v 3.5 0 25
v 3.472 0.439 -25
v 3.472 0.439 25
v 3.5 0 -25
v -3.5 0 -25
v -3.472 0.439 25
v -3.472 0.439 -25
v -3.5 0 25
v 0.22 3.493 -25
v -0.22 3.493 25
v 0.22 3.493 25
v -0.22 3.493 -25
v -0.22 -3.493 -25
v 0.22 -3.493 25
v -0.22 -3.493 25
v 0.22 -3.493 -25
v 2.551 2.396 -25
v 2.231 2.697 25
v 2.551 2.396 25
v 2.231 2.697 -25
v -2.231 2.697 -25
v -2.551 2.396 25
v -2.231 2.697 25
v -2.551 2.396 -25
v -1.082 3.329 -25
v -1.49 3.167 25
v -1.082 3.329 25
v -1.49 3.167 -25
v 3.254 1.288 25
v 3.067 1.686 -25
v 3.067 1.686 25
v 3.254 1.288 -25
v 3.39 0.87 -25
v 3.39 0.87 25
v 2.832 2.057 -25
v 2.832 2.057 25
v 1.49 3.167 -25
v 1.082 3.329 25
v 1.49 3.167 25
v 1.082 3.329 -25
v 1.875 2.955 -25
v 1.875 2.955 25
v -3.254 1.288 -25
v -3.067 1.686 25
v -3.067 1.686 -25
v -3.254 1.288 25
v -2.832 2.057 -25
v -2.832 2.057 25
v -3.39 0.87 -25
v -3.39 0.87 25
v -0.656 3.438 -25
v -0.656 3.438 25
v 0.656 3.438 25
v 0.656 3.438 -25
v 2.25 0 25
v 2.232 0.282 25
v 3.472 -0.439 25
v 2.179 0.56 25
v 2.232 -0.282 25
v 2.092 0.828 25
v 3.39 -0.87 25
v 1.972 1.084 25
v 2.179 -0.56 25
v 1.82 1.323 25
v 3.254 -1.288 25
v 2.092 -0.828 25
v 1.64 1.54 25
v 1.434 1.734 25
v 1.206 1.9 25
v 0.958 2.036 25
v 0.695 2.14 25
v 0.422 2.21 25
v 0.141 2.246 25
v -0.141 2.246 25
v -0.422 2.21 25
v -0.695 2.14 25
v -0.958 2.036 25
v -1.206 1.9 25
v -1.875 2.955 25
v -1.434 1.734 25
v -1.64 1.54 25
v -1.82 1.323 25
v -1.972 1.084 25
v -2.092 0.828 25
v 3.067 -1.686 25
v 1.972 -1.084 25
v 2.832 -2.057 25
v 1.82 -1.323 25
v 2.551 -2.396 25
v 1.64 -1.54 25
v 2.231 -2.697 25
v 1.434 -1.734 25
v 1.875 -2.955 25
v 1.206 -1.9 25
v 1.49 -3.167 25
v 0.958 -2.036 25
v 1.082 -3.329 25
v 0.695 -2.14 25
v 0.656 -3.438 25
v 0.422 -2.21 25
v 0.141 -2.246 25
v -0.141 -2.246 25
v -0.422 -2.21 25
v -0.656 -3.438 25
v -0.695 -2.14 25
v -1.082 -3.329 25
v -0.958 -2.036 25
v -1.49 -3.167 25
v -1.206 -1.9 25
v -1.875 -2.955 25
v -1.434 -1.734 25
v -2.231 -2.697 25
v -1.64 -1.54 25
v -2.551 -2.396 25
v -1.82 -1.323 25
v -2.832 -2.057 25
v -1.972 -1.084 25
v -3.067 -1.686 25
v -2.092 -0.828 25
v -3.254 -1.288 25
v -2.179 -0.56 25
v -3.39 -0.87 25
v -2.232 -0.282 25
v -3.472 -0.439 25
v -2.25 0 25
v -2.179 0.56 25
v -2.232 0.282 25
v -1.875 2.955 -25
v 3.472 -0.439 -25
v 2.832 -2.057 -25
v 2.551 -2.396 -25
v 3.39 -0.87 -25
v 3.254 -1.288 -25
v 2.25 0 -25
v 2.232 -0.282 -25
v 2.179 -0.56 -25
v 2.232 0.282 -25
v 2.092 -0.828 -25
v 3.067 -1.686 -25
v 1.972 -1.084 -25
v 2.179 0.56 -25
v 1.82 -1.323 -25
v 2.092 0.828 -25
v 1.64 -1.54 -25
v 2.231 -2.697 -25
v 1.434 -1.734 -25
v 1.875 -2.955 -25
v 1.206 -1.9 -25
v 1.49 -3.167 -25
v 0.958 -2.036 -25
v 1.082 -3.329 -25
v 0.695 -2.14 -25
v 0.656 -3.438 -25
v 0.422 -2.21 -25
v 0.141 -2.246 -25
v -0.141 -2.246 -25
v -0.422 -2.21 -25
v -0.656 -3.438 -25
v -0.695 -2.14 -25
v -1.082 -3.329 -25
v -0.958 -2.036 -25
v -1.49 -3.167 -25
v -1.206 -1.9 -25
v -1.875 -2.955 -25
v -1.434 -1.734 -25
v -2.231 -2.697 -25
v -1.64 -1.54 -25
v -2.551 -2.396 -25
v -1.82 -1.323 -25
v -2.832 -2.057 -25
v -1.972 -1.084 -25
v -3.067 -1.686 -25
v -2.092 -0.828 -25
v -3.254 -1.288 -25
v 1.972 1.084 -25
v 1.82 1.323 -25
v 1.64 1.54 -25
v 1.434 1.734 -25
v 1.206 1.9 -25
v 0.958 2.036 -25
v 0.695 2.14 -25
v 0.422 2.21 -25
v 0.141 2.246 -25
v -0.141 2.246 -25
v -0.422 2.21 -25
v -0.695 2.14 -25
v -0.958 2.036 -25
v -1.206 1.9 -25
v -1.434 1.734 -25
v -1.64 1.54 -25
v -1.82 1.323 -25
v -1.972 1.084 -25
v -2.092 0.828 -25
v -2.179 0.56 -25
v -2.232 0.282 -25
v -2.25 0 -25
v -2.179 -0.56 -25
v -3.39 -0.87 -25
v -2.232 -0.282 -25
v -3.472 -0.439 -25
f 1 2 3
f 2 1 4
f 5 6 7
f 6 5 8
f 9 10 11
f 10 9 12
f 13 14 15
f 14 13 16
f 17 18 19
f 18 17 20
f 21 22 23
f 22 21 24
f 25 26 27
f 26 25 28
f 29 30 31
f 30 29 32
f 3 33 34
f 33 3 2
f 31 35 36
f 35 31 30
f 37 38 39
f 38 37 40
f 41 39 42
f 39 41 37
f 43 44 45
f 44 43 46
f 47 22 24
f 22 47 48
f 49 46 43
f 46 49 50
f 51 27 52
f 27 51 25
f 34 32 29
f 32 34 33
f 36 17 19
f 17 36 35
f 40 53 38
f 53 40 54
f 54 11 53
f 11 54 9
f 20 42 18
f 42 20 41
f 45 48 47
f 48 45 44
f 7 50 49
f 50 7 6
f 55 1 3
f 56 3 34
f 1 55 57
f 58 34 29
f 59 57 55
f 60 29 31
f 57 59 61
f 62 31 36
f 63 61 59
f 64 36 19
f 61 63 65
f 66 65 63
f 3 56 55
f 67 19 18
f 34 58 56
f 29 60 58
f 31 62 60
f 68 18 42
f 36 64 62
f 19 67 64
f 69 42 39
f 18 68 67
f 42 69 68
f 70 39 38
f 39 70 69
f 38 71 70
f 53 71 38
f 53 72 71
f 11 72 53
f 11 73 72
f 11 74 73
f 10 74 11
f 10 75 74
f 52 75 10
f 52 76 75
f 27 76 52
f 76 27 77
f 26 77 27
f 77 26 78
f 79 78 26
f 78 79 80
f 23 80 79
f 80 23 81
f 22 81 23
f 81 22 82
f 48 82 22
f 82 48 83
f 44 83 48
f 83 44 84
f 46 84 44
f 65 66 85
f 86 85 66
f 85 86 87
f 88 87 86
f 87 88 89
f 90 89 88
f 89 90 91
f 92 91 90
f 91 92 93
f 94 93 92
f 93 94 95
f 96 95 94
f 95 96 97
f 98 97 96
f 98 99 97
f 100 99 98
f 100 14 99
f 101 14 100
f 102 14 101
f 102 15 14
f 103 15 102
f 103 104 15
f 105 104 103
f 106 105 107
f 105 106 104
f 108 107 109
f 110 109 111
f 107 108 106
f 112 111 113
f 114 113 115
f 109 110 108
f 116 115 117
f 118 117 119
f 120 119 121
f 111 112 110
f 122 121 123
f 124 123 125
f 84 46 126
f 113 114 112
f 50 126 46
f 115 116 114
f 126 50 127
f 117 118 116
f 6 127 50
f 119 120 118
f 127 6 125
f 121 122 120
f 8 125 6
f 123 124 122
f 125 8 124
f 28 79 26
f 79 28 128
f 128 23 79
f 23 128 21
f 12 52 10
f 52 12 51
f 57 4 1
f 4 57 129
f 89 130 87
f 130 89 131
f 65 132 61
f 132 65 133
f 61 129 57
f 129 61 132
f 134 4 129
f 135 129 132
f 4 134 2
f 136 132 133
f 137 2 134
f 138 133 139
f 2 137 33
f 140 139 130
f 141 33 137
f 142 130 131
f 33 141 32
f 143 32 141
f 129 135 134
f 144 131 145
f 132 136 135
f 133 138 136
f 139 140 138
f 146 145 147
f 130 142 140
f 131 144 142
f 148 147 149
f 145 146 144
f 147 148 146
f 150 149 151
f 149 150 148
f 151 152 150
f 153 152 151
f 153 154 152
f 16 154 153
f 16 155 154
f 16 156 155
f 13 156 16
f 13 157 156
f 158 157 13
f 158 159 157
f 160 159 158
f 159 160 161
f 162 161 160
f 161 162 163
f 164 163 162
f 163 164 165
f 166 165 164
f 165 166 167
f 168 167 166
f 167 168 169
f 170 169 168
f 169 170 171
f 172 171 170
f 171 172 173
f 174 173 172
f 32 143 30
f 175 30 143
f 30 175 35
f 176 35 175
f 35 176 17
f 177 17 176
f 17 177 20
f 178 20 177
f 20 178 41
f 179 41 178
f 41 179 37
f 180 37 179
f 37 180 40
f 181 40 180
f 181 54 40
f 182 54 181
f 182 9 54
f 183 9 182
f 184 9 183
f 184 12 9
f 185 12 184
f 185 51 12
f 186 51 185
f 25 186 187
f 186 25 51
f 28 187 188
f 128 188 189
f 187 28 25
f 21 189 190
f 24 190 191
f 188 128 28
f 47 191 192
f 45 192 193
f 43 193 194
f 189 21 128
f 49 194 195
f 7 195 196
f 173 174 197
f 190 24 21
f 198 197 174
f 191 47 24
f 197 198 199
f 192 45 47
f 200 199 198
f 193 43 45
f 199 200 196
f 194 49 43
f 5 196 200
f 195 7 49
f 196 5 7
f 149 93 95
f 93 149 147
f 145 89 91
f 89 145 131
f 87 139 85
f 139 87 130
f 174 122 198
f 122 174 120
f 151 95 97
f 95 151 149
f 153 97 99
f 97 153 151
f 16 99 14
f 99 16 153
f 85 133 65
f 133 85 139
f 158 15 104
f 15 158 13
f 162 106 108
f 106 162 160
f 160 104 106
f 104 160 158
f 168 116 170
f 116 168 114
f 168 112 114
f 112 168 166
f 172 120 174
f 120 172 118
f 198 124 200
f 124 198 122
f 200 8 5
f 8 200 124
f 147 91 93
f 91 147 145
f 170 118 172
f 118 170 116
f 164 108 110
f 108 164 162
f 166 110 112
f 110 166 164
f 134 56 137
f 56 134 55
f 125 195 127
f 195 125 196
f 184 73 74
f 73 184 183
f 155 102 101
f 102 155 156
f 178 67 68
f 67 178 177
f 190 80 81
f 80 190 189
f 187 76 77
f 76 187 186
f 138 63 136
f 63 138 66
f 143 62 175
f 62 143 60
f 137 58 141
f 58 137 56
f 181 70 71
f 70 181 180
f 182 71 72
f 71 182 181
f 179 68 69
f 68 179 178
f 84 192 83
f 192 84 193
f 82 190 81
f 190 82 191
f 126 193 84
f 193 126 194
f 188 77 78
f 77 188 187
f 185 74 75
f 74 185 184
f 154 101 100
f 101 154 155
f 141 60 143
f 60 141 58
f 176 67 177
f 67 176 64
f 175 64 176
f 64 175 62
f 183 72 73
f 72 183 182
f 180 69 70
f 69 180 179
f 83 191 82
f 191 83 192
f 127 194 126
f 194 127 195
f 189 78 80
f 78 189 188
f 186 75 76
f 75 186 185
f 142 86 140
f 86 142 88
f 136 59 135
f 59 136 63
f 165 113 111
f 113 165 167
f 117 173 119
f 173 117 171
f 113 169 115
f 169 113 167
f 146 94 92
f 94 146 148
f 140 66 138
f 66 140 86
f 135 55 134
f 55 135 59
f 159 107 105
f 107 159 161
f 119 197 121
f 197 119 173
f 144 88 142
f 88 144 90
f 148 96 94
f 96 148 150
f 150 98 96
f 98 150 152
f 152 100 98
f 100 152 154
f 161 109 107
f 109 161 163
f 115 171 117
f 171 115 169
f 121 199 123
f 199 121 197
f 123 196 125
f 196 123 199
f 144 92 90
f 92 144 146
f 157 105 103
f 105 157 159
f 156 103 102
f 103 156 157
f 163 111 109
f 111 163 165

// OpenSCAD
$fn = 50;


difference() {
	union() {
		translate(v = [0, 0, -25.0000000000]) {
			cylinder(h = 50, r = 3.5000000000);
		}
	}
	union() {
		translate(v = [0, 0, -100.0000000000]) {
			cylinder(h = 200, r = 2.2500000000);
		}
	}
}
